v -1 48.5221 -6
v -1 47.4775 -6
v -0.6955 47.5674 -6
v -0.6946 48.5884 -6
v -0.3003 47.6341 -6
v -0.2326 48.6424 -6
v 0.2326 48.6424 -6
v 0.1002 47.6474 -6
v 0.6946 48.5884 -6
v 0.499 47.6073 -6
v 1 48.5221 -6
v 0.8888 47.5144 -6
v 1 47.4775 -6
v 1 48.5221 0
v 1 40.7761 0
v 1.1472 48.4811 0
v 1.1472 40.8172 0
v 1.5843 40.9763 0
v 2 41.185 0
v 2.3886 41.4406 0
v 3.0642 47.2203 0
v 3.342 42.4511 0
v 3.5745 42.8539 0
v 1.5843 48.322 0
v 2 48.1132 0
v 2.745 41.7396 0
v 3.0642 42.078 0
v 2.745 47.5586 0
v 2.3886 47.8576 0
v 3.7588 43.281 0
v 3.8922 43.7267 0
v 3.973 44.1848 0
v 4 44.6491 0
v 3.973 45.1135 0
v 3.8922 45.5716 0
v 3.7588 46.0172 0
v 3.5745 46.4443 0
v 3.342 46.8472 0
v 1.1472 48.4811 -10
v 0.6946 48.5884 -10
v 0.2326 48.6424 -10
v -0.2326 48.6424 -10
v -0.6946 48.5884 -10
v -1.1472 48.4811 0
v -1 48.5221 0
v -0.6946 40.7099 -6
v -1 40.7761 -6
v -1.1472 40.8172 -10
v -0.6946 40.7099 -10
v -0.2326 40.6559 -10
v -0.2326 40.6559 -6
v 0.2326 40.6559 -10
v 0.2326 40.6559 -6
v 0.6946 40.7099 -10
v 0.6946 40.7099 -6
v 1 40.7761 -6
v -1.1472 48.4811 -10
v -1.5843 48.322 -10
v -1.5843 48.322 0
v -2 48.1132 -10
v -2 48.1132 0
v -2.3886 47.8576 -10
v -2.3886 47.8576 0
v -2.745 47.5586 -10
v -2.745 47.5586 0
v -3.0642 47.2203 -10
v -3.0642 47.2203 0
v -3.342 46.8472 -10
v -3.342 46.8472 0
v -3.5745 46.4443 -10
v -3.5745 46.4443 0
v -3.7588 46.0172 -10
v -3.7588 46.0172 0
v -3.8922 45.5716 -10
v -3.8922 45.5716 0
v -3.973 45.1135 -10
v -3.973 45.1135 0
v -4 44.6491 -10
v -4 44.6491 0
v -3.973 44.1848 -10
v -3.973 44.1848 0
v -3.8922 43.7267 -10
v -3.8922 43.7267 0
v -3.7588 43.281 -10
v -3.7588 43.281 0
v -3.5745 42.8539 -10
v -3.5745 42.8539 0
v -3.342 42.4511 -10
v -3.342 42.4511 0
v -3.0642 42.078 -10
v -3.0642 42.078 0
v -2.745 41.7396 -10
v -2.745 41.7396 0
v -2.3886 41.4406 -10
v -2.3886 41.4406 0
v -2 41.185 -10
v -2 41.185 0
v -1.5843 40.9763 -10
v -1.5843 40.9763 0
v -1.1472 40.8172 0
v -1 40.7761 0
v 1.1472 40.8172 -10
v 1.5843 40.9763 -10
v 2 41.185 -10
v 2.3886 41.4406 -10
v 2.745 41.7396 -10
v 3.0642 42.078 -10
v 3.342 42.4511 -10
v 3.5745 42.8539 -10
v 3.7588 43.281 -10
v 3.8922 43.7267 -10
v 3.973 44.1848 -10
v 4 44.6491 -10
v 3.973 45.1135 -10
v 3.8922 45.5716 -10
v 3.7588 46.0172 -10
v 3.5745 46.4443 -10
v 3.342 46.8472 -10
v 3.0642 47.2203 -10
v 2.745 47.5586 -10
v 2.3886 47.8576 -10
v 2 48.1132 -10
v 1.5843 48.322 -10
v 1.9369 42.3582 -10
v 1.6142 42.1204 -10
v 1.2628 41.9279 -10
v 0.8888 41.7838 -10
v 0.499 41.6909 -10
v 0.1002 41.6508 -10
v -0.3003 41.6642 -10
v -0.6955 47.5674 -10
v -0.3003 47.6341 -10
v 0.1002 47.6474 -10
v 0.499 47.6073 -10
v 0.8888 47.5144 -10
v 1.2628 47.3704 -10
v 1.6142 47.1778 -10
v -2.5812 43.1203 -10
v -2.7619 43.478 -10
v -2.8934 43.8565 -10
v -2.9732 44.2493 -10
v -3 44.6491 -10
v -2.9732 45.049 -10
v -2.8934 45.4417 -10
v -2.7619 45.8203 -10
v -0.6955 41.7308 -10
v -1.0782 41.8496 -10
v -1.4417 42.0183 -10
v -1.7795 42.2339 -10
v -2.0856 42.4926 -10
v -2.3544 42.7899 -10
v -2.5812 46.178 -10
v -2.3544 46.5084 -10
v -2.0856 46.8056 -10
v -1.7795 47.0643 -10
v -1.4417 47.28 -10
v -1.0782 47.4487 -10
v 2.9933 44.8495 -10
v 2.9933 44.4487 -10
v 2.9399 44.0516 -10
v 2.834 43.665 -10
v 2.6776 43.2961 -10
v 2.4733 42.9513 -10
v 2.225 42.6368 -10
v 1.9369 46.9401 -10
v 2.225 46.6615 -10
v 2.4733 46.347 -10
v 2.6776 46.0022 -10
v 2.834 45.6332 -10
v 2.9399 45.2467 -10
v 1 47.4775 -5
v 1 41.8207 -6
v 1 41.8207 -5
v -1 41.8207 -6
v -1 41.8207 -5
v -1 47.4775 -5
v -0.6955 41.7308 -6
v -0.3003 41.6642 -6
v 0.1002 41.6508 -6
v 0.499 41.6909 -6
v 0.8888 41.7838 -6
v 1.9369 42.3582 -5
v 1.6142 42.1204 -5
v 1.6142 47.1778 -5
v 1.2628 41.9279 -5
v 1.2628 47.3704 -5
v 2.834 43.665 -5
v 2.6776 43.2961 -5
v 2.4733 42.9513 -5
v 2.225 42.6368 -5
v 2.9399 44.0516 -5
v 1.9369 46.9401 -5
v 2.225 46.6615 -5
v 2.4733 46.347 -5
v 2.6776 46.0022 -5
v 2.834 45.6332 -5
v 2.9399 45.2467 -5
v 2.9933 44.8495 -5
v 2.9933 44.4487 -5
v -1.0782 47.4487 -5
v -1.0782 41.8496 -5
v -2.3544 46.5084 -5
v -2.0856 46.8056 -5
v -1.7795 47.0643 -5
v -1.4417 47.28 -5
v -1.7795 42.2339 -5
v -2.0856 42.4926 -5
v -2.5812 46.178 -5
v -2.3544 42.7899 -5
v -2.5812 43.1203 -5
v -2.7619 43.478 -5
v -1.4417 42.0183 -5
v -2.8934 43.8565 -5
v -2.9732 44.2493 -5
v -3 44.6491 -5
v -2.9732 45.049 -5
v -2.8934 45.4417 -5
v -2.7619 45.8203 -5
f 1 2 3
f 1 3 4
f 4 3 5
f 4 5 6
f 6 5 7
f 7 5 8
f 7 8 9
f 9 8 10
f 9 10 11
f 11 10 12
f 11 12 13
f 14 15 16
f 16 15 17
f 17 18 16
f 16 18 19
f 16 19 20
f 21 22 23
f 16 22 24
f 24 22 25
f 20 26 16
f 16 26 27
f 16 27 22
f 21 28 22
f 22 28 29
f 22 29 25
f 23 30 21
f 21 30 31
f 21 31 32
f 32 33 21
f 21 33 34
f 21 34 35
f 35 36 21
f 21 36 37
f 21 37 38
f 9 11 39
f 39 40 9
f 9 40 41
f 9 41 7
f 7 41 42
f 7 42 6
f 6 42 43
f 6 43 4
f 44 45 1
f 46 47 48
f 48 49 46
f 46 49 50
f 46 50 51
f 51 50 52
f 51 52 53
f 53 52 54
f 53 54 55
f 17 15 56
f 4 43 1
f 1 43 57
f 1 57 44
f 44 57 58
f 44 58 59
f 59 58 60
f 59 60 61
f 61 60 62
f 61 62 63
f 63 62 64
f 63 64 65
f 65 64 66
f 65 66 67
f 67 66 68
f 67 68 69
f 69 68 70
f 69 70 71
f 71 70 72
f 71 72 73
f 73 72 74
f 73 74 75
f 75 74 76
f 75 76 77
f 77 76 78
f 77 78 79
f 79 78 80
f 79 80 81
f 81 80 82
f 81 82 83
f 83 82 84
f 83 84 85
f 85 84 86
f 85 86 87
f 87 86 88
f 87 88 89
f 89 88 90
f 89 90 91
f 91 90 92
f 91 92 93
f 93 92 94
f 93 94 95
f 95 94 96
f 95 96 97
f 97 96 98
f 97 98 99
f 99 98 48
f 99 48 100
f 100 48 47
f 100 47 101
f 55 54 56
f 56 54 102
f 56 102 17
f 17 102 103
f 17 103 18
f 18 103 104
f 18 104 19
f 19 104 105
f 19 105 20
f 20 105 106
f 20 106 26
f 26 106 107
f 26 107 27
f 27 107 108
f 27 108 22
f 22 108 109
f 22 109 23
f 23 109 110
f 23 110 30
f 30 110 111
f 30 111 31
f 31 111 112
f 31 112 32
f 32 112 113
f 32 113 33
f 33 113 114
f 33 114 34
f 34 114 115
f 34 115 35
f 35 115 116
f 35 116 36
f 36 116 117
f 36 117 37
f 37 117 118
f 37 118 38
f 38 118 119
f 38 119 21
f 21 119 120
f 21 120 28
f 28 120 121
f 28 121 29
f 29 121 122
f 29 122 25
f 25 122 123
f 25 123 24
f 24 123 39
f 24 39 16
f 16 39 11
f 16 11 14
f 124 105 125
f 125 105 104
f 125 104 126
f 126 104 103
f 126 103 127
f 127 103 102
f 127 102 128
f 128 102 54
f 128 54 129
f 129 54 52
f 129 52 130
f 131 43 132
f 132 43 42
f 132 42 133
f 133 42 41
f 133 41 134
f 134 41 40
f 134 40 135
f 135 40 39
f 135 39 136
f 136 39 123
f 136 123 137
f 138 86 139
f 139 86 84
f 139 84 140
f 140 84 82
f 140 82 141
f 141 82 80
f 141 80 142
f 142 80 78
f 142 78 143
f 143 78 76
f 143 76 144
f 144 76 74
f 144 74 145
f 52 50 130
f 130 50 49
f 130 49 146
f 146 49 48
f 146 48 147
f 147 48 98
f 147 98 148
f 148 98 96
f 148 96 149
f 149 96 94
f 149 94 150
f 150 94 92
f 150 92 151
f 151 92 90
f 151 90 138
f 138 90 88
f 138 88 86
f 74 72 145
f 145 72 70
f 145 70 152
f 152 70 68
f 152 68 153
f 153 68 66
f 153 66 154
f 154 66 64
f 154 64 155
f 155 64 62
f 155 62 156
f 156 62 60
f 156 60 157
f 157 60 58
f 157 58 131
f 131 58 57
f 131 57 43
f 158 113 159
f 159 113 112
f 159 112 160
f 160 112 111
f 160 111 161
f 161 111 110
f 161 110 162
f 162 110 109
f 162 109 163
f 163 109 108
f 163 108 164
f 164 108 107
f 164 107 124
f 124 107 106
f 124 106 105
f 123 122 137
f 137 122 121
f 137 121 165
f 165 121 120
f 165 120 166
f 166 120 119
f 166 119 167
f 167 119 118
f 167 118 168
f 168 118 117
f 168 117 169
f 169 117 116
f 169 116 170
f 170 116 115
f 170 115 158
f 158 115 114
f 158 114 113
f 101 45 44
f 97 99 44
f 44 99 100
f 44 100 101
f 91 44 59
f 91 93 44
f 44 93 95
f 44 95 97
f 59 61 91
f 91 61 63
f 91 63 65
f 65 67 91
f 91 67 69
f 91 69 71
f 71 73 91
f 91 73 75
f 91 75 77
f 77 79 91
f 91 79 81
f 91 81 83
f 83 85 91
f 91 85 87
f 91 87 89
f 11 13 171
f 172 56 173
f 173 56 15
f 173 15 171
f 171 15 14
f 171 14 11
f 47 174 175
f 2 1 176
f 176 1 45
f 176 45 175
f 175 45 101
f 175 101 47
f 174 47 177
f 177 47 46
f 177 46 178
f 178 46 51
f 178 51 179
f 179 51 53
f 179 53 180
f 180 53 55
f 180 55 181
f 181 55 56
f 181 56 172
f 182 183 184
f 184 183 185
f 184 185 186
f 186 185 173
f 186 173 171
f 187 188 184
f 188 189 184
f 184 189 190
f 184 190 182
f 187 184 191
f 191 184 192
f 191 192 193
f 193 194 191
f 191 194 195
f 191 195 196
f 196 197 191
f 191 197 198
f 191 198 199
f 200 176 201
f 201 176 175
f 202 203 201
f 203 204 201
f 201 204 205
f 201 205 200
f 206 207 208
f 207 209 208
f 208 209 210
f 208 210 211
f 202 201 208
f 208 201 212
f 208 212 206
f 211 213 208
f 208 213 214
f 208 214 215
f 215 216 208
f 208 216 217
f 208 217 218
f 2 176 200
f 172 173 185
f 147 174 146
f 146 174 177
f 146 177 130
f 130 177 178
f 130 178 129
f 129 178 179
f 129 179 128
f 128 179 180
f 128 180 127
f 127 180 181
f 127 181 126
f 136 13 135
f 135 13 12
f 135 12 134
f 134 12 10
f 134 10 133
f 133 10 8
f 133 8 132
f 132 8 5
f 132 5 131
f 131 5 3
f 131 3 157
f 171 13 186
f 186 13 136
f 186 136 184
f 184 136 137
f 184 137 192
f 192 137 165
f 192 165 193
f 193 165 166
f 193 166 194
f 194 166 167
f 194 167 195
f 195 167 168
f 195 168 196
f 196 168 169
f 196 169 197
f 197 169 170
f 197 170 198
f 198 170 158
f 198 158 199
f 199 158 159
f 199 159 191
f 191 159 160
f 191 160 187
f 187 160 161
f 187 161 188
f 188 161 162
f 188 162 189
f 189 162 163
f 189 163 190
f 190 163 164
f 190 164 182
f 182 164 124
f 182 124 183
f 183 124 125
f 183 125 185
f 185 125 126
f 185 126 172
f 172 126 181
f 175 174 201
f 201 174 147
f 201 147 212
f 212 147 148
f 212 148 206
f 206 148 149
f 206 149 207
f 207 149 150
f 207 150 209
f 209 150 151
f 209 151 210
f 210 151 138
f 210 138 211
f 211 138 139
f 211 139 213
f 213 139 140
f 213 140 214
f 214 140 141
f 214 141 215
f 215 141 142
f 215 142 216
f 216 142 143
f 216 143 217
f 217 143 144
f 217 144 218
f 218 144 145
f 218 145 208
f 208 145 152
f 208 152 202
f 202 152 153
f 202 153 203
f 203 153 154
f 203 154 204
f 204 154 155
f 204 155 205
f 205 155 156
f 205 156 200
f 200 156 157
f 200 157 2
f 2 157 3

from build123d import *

# Parameters (mm, degrees)
CROQUIS1_R              = 4
SALIENTE_EXTRUIR1_DEPTH = 10
CROQUIS2_W              = 2
CROQUIS2_H              = 13.059807194
CORTAR_EXTRUIR1_DEPTH   = 6
CROQUIS3_R              = 3
CORTAR_EXTRUIR2_DEPTH   = 5


with BuildPart() as part:
    # Croquis1 → Saliente-Extruir1 (new body)
    with BuildSketch(Plane.XY):
        with Locations((0, 44.649122807)):
            Circle(CROQUIS1_R)
    extrude(amount=-SALIENTE_EXTRUIR1_DEPTH)

    # Croquis2 → Cortar-Extruir1 (cut)
    with BuildSketch(Plane.XY):
        with Locations((0, 44.649122807)):
            Rectangle(CROQUIS2_W, CROQUIS2_H)
    extrude(amount=-CORTAR_EXTRUIR1_DEPTH, mode=Mode.SUBTRACT)

    # Croquis3 → Cortar-Extruir2 (cut)
    with BuildSketch(Plane(origin=(0, 0, -10), x_dir=(-1, 0, 0), z_dir=(0, 0, -1))):
        with Locations((0, 44.649122807)):
            Circle(CROQUIS3_R)
    extrude(amount=-CORTAR_EXTRUIR2_DEPTH, mode=Mode.SUBTRACT)


solid = part.part
